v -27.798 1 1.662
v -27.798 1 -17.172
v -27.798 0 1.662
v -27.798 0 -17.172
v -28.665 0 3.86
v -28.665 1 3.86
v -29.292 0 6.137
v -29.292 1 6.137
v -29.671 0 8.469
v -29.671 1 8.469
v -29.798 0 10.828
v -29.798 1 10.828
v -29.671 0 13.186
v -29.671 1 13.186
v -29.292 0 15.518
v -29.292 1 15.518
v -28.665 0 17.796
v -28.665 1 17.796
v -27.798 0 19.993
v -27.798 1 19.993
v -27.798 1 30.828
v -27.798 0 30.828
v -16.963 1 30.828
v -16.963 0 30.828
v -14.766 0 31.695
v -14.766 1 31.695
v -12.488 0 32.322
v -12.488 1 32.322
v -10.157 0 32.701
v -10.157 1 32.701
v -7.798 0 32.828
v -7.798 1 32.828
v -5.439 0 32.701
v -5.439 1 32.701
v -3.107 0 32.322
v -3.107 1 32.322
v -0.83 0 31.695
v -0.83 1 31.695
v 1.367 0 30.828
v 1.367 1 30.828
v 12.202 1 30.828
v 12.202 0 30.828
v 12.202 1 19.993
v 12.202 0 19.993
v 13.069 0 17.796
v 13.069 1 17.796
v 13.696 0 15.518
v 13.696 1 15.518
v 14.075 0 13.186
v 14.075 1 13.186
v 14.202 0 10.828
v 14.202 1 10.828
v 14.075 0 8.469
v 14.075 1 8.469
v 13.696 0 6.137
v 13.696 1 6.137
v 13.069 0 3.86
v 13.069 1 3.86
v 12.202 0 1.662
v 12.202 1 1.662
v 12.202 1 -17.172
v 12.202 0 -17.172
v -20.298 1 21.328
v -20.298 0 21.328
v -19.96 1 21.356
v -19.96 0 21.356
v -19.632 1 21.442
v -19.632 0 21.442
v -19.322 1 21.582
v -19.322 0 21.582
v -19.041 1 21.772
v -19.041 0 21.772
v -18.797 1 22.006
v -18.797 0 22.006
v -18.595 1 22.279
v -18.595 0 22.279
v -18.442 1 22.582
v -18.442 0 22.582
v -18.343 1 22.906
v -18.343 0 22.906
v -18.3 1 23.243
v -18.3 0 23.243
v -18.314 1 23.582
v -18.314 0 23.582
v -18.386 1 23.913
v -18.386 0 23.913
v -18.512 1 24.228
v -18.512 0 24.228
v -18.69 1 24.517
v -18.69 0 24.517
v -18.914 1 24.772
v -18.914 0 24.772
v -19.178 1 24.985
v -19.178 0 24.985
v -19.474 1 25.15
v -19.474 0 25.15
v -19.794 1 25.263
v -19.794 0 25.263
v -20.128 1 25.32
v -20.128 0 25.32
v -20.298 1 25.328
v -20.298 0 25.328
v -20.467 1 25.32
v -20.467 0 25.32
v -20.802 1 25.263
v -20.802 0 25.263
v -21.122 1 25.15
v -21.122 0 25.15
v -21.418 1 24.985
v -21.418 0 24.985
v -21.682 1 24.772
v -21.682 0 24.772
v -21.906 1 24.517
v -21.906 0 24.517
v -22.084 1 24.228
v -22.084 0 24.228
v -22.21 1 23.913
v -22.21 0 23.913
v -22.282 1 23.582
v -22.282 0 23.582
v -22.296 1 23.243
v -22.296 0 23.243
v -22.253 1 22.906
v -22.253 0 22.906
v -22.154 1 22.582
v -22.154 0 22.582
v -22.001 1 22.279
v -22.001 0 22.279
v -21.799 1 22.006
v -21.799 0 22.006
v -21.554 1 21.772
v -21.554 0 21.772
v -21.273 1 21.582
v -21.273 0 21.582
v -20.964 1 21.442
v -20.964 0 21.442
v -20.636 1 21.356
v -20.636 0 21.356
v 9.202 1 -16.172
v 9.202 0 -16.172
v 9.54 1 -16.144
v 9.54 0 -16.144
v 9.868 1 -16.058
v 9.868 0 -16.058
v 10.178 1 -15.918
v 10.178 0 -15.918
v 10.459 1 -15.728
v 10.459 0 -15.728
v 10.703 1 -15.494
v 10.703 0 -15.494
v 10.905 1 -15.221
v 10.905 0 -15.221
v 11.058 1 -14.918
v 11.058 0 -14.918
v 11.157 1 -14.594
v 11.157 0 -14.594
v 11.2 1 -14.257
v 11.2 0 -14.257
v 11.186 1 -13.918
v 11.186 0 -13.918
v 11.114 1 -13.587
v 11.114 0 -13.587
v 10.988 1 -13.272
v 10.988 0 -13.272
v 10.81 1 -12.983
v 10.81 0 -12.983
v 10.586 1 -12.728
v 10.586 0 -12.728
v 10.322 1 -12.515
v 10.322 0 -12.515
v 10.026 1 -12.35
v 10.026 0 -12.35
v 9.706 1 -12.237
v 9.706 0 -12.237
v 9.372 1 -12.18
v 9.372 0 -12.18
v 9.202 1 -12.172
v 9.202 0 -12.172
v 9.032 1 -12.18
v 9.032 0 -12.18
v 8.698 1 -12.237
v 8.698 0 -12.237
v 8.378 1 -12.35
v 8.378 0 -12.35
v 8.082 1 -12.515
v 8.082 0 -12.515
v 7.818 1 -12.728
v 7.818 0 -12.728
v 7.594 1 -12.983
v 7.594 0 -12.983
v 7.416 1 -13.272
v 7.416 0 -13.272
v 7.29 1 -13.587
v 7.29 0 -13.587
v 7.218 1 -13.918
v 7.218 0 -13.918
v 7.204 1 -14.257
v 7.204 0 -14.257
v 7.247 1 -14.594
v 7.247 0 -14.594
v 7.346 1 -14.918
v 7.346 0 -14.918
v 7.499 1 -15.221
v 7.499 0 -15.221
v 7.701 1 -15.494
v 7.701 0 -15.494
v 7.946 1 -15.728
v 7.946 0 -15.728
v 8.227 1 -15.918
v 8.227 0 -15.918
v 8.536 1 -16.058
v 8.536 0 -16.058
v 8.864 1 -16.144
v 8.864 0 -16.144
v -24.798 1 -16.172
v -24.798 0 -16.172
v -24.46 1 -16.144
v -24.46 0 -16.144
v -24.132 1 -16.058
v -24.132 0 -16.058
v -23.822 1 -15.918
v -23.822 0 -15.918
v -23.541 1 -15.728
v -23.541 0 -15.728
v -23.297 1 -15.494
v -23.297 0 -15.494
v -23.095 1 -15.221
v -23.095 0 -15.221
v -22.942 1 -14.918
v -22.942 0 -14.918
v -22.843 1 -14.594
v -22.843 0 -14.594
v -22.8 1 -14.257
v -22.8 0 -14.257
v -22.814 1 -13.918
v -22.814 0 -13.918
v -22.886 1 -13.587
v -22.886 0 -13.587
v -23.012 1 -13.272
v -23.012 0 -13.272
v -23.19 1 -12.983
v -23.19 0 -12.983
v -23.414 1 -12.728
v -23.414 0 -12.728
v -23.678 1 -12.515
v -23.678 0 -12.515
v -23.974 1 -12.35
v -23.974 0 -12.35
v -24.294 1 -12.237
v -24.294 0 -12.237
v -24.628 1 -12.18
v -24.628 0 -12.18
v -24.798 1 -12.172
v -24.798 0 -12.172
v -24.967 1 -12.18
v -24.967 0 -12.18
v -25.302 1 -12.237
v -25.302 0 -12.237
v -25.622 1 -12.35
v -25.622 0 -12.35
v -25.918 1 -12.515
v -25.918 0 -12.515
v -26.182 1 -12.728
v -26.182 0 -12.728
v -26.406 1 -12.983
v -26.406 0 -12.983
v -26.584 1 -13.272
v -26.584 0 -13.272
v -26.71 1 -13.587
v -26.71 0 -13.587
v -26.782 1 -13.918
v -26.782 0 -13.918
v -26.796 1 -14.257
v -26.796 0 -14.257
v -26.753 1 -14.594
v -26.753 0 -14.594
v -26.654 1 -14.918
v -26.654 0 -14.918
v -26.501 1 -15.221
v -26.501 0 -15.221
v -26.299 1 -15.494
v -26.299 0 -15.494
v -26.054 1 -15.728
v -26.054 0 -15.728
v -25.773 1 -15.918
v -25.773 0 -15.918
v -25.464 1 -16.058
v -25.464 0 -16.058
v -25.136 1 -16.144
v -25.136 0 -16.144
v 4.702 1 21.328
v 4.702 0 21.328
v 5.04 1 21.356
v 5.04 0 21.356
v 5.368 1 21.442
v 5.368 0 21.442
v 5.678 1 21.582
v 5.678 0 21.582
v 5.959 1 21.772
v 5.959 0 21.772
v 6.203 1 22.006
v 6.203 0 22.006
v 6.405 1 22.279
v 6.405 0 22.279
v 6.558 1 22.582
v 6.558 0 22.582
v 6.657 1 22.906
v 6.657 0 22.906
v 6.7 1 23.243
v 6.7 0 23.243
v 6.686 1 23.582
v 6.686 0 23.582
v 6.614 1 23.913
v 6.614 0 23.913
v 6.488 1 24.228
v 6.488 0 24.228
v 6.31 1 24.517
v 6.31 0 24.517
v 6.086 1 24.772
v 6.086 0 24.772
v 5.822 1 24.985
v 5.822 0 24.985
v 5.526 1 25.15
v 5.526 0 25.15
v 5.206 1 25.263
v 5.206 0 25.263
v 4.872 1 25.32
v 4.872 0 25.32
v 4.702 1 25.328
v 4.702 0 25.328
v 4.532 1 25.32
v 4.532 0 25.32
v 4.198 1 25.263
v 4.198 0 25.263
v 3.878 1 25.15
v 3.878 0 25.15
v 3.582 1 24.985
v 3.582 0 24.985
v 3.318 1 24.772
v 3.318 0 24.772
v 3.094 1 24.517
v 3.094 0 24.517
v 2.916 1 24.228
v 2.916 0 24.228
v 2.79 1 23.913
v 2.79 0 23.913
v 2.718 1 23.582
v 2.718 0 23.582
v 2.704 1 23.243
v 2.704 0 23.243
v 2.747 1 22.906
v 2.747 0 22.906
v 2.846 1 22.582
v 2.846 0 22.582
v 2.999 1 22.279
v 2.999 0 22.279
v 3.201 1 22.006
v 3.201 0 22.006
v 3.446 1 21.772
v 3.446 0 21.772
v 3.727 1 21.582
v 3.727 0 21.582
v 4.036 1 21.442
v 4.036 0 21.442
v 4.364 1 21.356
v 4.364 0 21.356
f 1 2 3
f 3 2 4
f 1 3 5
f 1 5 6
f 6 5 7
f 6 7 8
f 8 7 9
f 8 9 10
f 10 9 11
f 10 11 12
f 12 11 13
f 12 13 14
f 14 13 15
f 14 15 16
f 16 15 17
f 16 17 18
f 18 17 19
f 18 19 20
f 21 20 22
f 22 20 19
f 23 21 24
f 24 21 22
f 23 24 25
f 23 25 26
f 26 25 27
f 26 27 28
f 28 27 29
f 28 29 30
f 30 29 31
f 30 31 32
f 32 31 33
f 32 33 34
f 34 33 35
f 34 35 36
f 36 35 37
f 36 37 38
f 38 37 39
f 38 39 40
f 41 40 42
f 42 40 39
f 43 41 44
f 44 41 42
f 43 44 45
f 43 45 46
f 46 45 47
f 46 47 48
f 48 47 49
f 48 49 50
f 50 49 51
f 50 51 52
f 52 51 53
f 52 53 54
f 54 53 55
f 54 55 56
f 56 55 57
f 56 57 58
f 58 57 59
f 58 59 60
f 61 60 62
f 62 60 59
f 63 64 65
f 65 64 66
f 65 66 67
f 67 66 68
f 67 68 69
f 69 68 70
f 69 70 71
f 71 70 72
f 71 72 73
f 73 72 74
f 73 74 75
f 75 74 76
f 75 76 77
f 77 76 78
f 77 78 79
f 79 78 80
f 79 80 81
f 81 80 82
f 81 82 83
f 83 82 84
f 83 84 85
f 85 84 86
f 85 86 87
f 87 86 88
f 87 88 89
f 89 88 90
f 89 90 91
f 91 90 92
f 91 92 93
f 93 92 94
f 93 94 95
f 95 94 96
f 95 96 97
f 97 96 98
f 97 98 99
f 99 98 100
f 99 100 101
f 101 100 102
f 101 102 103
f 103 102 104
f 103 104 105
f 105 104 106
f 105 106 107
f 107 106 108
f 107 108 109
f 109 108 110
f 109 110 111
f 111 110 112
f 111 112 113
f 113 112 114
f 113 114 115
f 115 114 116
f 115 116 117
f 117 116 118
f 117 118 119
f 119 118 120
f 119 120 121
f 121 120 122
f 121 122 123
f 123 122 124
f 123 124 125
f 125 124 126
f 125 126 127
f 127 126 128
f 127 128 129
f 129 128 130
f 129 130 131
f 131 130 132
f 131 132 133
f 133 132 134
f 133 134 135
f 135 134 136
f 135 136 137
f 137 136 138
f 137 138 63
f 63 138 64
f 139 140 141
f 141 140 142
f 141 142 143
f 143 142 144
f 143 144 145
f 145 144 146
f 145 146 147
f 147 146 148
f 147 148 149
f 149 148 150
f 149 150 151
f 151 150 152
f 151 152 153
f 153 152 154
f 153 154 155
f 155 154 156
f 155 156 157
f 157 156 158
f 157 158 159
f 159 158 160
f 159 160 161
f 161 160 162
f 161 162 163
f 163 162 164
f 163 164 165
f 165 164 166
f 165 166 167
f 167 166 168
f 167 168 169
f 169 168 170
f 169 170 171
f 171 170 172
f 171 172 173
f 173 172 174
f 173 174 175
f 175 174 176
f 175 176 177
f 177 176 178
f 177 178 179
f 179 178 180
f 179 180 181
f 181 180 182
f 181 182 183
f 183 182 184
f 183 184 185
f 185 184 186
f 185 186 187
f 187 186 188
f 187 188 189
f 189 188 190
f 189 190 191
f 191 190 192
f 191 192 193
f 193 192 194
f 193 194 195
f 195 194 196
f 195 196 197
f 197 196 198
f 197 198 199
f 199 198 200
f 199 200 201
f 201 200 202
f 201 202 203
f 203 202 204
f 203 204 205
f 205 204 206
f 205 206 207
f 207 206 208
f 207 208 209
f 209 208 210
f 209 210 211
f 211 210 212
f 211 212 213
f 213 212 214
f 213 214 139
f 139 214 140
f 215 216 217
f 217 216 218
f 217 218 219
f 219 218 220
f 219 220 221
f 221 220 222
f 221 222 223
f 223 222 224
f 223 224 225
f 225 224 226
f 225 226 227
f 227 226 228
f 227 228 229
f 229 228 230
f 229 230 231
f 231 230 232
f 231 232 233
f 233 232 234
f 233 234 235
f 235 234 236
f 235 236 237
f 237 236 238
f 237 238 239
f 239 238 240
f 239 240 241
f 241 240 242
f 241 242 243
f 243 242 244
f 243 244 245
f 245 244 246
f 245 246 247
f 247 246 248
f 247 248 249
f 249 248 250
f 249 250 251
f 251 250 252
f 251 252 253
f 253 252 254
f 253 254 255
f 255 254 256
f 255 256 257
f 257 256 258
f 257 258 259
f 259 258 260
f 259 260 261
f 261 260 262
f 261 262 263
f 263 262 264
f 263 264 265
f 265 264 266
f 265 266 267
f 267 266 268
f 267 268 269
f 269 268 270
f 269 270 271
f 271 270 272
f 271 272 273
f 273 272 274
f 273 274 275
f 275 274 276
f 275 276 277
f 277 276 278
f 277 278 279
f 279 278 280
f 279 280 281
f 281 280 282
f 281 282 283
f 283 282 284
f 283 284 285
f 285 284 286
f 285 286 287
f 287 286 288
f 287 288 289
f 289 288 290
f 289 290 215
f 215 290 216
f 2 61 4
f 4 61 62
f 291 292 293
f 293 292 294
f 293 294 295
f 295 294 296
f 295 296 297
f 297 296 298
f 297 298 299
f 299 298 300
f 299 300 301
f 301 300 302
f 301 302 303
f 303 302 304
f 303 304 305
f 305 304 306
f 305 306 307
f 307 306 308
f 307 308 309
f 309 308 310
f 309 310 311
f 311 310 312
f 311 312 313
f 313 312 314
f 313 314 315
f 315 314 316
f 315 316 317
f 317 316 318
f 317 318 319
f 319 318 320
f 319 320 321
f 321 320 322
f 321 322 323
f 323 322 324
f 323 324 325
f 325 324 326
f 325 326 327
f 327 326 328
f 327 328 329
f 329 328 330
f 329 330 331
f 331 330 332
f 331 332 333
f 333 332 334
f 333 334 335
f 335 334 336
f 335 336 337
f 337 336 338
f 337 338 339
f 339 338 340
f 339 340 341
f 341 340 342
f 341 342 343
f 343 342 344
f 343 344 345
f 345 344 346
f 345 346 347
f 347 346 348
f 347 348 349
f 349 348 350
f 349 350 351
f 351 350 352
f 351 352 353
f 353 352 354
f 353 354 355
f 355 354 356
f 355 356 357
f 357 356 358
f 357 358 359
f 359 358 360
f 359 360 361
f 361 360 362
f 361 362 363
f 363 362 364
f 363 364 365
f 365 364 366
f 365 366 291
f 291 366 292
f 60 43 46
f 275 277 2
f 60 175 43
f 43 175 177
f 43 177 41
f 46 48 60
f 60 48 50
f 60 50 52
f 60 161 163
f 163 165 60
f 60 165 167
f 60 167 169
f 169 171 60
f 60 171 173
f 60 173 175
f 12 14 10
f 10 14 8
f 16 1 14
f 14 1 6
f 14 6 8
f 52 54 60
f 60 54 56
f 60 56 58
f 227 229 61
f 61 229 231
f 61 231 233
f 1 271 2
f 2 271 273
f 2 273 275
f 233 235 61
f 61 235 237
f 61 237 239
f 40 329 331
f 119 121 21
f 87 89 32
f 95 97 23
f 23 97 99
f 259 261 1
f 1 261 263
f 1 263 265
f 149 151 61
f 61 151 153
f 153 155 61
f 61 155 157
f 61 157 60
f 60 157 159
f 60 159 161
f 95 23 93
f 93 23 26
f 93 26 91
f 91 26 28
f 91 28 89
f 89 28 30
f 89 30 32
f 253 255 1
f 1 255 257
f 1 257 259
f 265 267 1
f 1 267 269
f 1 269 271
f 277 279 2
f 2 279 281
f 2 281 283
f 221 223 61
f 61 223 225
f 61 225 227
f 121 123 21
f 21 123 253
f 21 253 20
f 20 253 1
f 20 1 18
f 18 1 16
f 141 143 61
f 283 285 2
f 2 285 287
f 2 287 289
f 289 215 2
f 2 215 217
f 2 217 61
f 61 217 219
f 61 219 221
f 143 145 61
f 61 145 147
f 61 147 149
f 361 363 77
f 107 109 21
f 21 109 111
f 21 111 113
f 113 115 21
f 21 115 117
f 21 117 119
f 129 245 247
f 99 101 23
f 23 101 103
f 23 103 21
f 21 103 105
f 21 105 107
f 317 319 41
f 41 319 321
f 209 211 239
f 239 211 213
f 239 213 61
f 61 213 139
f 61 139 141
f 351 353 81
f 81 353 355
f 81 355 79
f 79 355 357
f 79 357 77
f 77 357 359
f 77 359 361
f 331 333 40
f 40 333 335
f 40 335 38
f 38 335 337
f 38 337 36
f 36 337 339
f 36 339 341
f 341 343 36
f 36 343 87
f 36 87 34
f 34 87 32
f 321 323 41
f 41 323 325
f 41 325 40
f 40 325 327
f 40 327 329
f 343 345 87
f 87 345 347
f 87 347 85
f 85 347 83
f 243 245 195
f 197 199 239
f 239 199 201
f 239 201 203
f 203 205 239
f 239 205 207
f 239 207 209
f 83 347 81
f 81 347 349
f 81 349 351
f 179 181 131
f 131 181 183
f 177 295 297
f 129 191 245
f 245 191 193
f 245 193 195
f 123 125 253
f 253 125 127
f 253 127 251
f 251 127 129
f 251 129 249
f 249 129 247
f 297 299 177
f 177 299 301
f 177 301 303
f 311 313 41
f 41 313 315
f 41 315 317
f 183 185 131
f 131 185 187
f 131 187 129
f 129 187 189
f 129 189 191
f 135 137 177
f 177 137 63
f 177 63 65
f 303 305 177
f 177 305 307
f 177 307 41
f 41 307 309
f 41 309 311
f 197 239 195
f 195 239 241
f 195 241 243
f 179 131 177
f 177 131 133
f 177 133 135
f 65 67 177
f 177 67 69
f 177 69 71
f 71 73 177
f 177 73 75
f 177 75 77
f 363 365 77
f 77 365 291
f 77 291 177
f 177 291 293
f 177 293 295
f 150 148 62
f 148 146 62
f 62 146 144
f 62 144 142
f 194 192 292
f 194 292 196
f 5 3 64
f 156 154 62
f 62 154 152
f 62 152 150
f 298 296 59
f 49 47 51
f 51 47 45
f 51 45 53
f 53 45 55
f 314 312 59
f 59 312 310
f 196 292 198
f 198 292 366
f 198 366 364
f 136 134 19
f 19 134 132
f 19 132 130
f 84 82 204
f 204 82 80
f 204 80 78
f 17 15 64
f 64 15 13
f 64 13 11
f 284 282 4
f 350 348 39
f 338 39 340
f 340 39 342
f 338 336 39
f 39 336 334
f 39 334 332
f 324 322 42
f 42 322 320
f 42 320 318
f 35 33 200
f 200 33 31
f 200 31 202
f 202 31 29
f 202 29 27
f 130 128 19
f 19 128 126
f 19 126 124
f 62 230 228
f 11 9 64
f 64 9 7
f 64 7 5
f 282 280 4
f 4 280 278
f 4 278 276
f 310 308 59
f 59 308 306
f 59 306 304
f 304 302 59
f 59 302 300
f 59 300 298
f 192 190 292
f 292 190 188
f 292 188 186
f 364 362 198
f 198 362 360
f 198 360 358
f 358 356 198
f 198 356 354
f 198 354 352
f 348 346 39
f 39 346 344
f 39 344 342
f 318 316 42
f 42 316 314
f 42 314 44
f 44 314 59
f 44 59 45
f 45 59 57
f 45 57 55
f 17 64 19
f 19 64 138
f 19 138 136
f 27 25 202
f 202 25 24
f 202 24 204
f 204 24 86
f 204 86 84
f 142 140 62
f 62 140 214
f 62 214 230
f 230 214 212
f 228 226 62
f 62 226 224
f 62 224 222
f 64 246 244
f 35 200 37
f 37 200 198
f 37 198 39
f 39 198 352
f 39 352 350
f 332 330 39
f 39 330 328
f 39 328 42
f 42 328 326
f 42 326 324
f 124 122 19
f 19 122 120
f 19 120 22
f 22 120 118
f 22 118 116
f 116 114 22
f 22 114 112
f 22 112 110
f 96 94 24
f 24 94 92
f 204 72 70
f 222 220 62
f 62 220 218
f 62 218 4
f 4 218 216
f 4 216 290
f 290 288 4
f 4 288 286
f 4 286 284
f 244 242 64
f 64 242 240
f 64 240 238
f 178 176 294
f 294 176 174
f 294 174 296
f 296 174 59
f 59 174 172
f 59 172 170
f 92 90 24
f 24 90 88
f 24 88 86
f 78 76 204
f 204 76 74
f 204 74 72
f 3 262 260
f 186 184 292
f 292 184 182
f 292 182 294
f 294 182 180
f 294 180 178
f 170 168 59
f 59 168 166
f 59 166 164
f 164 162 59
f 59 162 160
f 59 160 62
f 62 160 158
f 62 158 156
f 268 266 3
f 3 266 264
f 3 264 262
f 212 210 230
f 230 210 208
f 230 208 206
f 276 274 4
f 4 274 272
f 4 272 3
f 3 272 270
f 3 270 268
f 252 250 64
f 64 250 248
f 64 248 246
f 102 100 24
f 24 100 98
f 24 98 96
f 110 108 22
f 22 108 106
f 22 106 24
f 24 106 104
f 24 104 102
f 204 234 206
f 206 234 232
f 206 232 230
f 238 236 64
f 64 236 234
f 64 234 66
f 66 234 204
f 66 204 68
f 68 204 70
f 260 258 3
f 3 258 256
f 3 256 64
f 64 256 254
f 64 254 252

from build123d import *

# Parameters (mm, degrees)
SKETCH1_R           = 2
BOSS_EXTRUDE1_DEPTH = 1


with BuildPart() as part:
    # Sketch1 → Boss-Extrude1 (new body)
    with BuildSketch(Plane(origin=(0, 0, 0), x_dir=(1, 0, 0), z_dir=(0, 1, 0))):
        with BuildLine():
            Line((12.20211229, -1.662478542), (12.20211229, 17.172370068))
            Line((12.20211229, 17.172370068), (-27.79788771, 17.172370068))
            Line((-27.79788771, 17.172370068), (-27.79788771, -1.662478542))
            ThreePointArc((-27.79788771, -1.662478542), (-29.79788771, -10.827629932), (-27.79788771, -19.992781322))
            Line((-27.79788771, -19.992781322), (-27.79788771, -30.827629932))
            Line((-27.79788771, -30.827629932), (-16.9630391, -30.827629932))
            ThreePointArc((-16.9630391, -30.827629932), (-7.79788771, -32.827629932), (1.36726368, -30.827629932))
            Line((1.36726368, -30.827629932), (12.20211229, -30.827629932))
            Line((12.20211229, -30.827629932), (12.20211229, -19.992781322))
            ThreePointArc((12.20211229, -19.992781322), (14.20211229, -10.827629932), (12.20211229, -1.662478542))
        make_face()
        with Locations((-20.29788771, -23.327629932)):
            Circle(SKETCH1_R, mode=Mode.SUBTRACT)
        with Locations((4.70211229, -23.327629932)):
            Circle(SKETCH1_R, mode=Mode.SUBTRACT)
        with Locations((-24.79788771, 14.172370068)):
            Circle(SKETCH1_R, mode=Mode.SUBTRACT)
        with Locations((9.20211229, 14.172370068)):
            Circle(SKETCH1_R, mode=Mode.SUBTRACT)
    extrude(amount=BOSS_EXTRUDE1_DEPTH)


solid = part.part
